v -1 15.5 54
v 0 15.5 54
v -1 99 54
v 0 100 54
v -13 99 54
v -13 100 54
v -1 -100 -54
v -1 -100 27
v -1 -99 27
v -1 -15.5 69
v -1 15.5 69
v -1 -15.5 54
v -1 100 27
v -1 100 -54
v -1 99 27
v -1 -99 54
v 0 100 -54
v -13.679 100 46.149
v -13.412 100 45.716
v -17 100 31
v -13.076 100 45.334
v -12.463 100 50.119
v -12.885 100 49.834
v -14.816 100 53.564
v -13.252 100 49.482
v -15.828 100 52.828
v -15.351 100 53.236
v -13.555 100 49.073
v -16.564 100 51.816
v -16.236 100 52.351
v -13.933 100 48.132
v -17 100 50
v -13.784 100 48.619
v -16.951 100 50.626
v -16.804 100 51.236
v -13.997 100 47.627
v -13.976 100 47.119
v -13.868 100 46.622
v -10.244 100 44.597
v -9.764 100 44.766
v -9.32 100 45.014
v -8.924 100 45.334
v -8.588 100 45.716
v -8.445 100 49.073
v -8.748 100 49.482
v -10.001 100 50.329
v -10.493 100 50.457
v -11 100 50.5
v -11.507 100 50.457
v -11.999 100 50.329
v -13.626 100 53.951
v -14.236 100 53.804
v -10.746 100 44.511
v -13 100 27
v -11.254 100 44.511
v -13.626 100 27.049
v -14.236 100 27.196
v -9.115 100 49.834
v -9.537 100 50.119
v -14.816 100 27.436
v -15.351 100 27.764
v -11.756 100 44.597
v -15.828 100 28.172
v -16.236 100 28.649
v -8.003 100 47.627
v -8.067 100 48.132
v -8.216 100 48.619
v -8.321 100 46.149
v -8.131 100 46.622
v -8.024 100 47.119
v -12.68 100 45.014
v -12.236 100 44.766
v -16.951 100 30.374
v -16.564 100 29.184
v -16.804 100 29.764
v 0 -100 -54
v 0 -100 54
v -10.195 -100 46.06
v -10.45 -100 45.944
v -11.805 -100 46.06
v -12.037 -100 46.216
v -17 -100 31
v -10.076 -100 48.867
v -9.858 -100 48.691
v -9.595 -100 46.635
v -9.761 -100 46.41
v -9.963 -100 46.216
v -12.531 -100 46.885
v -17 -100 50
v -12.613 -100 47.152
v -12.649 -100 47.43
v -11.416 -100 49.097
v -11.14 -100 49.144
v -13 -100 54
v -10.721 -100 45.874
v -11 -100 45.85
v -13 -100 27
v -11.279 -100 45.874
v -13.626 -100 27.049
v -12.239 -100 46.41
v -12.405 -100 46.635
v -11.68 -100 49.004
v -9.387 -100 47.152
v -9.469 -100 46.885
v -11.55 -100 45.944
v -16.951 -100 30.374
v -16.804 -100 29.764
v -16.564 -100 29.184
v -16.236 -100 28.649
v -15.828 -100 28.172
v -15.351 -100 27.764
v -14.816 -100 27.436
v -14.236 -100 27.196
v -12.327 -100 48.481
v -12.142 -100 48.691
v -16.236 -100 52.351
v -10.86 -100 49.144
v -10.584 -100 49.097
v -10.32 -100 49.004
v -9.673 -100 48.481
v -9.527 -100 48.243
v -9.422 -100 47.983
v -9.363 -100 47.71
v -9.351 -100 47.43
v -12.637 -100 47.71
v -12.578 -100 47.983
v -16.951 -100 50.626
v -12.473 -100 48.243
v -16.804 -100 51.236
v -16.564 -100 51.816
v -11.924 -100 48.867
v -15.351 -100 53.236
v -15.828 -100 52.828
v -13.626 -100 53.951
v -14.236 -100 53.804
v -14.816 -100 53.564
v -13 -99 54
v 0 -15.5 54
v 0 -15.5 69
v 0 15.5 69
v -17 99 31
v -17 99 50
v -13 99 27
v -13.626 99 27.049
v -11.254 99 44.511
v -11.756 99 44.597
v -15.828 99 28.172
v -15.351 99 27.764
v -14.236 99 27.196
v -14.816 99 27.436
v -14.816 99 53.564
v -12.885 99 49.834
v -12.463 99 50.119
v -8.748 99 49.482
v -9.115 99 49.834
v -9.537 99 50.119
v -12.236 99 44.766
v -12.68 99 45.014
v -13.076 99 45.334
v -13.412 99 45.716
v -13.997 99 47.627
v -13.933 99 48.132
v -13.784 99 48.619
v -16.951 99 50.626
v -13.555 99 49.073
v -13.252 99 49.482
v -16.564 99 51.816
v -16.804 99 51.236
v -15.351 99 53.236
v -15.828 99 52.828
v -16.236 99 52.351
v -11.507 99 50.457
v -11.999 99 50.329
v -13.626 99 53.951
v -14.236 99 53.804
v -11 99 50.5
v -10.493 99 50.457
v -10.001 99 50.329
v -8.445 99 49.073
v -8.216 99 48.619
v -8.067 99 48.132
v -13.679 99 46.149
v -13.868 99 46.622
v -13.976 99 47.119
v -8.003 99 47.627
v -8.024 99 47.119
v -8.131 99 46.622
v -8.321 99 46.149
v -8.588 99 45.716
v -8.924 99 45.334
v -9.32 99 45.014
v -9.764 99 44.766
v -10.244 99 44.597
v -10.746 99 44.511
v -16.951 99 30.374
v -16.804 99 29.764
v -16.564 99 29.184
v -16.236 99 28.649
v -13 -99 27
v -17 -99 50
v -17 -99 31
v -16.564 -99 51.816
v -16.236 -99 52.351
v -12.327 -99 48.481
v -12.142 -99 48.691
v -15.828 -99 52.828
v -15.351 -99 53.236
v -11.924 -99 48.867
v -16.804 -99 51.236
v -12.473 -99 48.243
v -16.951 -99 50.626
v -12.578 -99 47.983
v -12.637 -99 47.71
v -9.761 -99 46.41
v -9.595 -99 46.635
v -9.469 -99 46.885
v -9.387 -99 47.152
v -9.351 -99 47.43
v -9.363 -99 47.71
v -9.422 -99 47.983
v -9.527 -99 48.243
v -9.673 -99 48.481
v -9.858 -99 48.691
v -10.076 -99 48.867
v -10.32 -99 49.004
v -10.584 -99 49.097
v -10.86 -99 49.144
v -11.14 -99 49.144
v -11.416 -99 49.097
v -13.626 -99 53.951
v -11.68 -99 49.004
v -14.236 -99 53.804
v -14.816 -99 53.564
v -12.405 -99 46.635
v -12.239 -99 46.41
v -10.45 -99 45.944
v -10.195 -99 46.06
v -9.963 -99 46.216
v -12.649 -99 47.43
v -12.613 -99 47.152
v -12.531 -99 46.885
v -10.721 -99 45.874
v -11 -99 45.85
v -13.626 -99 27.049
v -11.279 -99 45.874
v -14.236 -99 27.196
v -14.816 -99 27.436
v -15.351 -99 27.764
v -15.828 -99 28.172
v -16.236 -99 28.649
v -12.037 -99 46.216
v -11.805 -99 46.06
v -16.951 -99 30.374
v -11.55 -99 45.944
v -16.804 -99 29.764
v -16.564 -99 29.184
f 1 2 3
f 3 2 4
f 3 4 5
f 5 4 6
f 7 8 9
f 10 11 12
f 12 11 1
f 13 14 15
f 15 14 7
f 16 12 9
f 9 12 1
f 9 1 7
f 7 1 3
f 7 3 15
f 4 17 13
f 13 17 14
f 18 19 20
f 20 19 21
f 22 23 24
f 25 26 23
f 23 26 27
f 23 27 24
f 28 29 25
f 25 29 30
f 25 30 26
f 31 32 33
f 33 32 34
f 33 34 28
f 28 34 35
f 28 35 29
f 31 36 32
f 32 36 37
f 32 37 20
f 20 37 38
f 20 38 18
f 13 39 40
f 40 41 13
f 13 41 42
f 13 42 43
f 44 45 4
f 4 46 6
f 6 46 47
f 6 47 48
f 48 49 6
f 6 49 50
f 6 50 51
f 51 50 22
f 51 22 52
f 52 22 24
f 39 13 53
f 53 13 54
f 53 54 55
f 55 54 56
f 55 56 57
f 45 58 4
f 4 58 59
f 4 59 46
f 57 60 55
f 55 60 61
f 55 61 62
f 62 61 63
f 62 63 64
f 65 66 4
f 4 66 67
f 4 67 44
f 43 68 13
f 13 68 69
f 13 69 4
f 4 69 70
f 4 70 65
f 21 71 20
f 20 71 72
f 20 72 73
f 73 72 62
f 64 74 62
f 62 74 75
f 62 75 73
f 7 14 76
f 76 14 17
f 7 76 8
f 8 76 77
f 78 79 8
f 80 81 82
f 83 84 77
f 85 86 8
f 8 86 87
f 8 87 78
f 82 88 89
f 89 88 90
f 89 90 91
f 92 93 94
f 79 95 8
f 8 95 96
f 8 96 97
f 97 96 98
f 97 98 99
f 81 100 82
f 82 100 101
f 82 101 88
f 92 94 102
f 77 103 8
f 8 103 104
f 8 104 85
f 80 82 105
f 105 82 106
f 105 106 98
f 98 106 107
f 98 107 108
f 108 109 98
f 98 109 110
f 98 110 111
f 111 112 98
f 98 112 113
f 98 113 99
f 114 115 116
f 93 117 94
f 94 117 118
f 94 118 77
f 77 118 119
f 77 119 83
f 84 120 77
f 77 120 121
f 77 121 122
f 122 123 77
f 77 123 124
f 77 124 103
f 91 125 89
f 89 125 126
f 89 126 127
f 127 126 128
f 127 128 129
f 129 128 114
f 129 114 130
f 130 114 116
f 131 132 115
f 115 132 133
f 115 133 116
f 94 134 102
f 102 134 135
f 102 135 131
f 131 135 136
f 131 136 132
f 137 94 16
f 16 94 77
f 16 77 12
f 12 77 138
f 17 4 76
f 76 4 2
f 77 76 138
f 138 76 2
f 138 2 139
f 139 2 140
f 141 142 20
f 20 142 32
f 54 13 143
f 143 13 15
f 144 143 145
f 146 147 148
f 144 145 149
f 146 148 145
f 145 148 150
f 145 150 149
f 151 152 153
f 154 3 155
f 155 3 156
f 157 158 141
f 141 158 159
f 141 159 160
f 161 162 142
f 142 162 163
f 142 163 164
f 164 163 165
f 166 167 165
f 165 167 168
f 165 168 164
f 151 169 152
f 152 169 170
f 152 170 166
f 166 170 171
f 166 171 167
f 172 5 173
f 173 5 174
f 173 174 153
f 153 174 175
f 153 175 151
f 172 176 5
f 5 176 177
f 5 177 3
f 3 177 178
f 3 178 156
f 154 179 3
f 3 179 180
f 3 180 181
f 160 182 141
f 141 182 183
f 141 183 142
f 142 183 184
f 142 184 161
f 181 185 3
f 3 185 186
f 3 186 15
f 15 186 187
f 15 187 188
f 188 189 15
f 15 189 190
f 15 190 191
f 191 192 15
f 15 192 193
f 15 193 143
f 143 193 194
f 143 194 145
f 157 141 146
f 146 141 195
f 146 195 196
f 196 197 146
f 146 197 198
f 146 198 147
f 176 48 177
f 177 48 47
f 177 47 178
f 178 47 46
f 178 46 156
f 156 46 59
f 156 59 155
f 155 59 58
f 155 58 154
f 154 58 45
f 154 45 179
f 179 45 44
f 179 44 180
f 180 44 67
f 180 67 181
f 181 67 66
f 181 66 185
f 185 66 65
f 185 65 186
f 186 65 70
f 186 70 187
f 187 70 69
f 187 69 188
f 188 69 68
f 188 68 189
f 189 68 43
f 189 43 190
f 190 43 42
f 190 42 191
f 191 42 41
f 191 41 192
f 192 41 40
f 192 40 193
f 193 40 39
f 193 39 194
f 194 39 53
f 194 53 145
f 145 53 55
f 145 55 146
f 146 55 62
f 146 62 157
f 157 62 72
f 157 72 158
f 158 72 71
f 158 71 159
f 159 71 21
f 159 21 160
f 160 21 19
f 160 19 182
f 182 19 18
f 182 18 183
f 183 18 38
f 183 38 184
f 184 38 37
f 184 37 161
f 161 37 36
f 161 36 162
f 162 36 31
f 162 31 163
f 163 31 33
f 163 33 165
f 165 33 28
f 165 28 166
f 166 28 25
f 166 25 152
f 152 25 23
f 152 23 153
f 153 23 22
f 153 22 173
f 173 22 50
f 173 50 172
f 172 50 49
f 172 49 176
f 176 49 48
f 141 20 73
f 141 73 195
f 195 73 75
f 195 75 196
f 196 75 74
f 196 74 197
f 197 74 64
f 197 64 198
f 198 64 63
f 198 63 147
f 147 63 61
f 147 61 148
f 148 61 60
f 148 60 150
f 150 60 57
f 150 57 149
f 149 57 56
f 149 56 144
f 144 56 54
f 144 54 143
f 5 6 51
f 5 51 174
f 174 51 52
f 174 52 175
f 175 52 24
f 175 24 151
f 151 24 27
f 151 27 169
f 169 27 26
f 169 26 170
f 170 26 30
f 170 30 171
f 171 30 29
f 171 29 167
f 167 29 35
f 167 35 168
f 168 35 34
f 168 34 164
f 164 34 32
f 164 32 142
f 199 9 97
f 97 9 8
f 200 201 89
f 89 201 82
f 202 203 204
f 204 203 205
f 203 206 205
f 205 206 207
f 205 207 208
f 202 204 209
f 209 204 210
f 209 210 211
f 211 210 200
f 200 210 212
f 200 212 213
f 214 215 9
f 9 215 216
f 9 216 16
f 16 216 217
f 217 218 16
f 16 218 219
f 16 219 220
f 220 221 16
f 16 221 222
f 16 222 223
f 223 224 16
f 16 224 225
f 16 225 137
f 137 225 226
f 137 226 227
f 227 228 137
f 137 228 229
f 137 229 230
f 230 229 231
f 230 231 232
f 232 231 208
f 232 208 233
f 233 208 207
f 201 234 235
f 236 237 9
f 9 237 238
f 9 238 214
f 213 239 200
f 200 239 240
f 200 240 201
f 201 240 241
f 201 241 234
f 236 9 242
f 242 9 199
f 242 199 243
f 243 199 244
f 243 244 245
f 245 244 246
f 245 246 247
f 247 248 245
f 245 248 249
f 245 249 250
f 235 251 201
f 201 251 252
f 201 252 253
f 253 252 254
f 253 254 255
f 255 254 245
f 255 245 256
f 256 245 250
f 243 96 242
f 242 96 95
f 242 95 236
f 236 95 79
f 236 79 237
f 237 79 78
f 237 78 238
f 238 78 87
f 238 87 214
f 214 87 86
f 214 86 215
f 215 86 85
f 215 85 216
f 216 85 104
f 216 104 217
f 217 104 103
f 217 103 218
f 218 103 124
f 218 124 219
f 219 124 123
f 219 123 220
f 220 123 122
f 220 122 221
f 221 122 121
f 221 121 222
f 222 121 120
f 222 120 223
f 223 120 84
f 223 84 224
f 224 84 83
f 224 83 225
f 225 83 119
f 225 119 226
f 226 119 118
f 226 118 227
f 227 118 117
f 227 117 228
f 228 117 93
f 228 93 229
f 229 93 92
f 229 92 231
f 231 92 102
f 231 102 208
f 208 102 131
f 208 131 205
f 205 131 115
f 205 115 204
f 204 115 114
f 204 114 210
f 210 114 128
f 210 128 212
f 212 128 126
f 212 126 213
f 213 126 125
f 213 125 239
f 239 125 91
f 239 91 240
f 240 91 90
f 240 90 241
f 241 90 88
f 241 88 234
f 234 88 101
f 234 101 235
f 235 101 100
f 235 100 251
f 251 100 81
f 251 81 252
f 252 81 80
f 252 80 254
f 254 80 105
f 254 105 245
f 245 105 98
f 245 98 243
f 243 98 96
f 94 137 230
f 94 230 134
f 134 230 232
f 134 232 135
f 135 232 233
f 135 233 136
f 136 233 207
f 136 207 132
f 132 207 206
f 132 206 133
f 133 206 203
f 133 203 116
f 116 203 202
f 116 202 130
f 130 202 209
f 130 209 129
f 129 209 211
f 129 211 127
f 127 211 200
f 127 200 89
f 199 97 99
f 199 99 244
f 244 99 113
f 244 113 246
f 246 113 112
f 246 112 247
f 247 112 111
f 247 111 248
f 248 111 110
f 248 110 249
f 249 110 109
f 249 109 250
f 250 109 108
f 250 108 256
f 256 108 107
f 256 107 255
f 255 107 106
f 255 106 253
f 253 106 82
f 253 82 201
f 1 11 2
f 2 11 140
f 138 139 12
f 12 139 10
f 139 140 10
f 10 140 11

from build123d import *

# Parameters (mm, degrees)
SKETCH1_W           = 200
SKETCH1_H           = 108
BOSS_EXTRUDE1_DEPTH = 1
SKETCH3_W           = 16
SKETCH3_H           = 27
BOSS_EXTRUDE2_DEPTH = 1
CUT_EXTRUDE1_REACH  = 209.858
SKETCH4_R           = 3
FILLET2_R           = 4
CUT_EXTRUDE2_REACH  = 209.858
SKETCH6_R           = 1.65
FILLET3_R           = 4
SKETCH7_W           = 1
SKETCH7_H           = 31
BOSS_EXTRUDE3_DEPTH = 15


with BuildPart() as part:
    # Sketch1 → Boss-Extrude1 (new body)
    with BuildSketch(Plane.YZ):
        Rectangle(SKETCH1_W, SKETCH1_H)
    extrude(amount=-BOSS_EXTRUDE1_DEPTH)

    # Sketch3 → Boss-Extrude2 (add)
    with BuildSketch(Plane(origin=(0, 100, 0), x_dir=(-1, 0, 0), z_dir=(0, 1, 0))):
        with Locations((9, 40.5)):
            Rectangle(SKETCH3_W, SKETCH3_H)
    boss_extrude2 = extrude(amount=-BOSS_EXTRUDE2_DEPTH)

    # Sketch4 → Cut-Extrude1 (cut, up to next)
    with BuildSketch(Plane(origin=(0, 100, 0), x_dir=(-1, 0, 0), z_dir=(0, 1, 0)), mode=Mode.PRIVATE) as cut_extrude1_sk1:
        with Locations(Location((11, 47.5, 0), (0, 0, 90))):
            Circle(SKETCH4_R)
    cut_extrude1_tool1 = extrude(cut_extrude1_sk1.sketch, amount=-CUT_EXTRUDE1_REACH, mode=Mode.PRIVATE) & part.part
    add(cut_extrude1_tool1.solids().sort_by_distance((-11, 100, 47.5))[0], mode=Mode.SUBTRACT)

    # Fillet2
    fillet2_edges = [part.edges().sort_by_distance(p)[0] for p in [
        (-17, 99.5, 54),
        (-17, 99.5, 27),
    ]]
    fillet(fillet2_edges, radius=FILLET2_R)

    # Mirror1: Boss-Extrude2 across plane
    add(boss_extrude2.mirror(Plane.ZX))

    # Sketch6 → Cut-Extrude2 (cut, up to next)
    with BuildSketch(Plane.XZ.offset(100), mode=Mode.PRIVATE) as cut_extrude2_sk1:
        with Locations(Location((-11, 47.5, 0), (0, 0, 270))):
            Circle(SKETCH6_R)
    cut_extrude2_tool1 = extrude(cut_extrude2_sk1.sketch, amount=-CUT_EXTRUDE2_REACH, mode=Mode.PRIVATE) & part.part
    add(cut_extrude2_tool1.solids().sort_by_distance((-11, -100, 47.5))[0], mode=Mode.SUBTRACT)

    # Fillet3
    fillet3_edges = [part.edges().sort_by_distance(p)[0] for p in [
        (-17, -99.5, 27),
        (-17, -99.5, 54),
    ]]
    fillet(fillet3_edges, radius=FILLET3_R)

    # Sketch7 → Boss-Extrude3 (add, symmetric)
    with BuildSketch(Plane.XY.offset(54)):
        with Locations((-0.5, 0)):
            Rectangle(SKETCH7_W, SKETCH7_H)
    extrude(amount=BOSS_EXTRUDE3_DEPTH, both=True)


solid = part.part
